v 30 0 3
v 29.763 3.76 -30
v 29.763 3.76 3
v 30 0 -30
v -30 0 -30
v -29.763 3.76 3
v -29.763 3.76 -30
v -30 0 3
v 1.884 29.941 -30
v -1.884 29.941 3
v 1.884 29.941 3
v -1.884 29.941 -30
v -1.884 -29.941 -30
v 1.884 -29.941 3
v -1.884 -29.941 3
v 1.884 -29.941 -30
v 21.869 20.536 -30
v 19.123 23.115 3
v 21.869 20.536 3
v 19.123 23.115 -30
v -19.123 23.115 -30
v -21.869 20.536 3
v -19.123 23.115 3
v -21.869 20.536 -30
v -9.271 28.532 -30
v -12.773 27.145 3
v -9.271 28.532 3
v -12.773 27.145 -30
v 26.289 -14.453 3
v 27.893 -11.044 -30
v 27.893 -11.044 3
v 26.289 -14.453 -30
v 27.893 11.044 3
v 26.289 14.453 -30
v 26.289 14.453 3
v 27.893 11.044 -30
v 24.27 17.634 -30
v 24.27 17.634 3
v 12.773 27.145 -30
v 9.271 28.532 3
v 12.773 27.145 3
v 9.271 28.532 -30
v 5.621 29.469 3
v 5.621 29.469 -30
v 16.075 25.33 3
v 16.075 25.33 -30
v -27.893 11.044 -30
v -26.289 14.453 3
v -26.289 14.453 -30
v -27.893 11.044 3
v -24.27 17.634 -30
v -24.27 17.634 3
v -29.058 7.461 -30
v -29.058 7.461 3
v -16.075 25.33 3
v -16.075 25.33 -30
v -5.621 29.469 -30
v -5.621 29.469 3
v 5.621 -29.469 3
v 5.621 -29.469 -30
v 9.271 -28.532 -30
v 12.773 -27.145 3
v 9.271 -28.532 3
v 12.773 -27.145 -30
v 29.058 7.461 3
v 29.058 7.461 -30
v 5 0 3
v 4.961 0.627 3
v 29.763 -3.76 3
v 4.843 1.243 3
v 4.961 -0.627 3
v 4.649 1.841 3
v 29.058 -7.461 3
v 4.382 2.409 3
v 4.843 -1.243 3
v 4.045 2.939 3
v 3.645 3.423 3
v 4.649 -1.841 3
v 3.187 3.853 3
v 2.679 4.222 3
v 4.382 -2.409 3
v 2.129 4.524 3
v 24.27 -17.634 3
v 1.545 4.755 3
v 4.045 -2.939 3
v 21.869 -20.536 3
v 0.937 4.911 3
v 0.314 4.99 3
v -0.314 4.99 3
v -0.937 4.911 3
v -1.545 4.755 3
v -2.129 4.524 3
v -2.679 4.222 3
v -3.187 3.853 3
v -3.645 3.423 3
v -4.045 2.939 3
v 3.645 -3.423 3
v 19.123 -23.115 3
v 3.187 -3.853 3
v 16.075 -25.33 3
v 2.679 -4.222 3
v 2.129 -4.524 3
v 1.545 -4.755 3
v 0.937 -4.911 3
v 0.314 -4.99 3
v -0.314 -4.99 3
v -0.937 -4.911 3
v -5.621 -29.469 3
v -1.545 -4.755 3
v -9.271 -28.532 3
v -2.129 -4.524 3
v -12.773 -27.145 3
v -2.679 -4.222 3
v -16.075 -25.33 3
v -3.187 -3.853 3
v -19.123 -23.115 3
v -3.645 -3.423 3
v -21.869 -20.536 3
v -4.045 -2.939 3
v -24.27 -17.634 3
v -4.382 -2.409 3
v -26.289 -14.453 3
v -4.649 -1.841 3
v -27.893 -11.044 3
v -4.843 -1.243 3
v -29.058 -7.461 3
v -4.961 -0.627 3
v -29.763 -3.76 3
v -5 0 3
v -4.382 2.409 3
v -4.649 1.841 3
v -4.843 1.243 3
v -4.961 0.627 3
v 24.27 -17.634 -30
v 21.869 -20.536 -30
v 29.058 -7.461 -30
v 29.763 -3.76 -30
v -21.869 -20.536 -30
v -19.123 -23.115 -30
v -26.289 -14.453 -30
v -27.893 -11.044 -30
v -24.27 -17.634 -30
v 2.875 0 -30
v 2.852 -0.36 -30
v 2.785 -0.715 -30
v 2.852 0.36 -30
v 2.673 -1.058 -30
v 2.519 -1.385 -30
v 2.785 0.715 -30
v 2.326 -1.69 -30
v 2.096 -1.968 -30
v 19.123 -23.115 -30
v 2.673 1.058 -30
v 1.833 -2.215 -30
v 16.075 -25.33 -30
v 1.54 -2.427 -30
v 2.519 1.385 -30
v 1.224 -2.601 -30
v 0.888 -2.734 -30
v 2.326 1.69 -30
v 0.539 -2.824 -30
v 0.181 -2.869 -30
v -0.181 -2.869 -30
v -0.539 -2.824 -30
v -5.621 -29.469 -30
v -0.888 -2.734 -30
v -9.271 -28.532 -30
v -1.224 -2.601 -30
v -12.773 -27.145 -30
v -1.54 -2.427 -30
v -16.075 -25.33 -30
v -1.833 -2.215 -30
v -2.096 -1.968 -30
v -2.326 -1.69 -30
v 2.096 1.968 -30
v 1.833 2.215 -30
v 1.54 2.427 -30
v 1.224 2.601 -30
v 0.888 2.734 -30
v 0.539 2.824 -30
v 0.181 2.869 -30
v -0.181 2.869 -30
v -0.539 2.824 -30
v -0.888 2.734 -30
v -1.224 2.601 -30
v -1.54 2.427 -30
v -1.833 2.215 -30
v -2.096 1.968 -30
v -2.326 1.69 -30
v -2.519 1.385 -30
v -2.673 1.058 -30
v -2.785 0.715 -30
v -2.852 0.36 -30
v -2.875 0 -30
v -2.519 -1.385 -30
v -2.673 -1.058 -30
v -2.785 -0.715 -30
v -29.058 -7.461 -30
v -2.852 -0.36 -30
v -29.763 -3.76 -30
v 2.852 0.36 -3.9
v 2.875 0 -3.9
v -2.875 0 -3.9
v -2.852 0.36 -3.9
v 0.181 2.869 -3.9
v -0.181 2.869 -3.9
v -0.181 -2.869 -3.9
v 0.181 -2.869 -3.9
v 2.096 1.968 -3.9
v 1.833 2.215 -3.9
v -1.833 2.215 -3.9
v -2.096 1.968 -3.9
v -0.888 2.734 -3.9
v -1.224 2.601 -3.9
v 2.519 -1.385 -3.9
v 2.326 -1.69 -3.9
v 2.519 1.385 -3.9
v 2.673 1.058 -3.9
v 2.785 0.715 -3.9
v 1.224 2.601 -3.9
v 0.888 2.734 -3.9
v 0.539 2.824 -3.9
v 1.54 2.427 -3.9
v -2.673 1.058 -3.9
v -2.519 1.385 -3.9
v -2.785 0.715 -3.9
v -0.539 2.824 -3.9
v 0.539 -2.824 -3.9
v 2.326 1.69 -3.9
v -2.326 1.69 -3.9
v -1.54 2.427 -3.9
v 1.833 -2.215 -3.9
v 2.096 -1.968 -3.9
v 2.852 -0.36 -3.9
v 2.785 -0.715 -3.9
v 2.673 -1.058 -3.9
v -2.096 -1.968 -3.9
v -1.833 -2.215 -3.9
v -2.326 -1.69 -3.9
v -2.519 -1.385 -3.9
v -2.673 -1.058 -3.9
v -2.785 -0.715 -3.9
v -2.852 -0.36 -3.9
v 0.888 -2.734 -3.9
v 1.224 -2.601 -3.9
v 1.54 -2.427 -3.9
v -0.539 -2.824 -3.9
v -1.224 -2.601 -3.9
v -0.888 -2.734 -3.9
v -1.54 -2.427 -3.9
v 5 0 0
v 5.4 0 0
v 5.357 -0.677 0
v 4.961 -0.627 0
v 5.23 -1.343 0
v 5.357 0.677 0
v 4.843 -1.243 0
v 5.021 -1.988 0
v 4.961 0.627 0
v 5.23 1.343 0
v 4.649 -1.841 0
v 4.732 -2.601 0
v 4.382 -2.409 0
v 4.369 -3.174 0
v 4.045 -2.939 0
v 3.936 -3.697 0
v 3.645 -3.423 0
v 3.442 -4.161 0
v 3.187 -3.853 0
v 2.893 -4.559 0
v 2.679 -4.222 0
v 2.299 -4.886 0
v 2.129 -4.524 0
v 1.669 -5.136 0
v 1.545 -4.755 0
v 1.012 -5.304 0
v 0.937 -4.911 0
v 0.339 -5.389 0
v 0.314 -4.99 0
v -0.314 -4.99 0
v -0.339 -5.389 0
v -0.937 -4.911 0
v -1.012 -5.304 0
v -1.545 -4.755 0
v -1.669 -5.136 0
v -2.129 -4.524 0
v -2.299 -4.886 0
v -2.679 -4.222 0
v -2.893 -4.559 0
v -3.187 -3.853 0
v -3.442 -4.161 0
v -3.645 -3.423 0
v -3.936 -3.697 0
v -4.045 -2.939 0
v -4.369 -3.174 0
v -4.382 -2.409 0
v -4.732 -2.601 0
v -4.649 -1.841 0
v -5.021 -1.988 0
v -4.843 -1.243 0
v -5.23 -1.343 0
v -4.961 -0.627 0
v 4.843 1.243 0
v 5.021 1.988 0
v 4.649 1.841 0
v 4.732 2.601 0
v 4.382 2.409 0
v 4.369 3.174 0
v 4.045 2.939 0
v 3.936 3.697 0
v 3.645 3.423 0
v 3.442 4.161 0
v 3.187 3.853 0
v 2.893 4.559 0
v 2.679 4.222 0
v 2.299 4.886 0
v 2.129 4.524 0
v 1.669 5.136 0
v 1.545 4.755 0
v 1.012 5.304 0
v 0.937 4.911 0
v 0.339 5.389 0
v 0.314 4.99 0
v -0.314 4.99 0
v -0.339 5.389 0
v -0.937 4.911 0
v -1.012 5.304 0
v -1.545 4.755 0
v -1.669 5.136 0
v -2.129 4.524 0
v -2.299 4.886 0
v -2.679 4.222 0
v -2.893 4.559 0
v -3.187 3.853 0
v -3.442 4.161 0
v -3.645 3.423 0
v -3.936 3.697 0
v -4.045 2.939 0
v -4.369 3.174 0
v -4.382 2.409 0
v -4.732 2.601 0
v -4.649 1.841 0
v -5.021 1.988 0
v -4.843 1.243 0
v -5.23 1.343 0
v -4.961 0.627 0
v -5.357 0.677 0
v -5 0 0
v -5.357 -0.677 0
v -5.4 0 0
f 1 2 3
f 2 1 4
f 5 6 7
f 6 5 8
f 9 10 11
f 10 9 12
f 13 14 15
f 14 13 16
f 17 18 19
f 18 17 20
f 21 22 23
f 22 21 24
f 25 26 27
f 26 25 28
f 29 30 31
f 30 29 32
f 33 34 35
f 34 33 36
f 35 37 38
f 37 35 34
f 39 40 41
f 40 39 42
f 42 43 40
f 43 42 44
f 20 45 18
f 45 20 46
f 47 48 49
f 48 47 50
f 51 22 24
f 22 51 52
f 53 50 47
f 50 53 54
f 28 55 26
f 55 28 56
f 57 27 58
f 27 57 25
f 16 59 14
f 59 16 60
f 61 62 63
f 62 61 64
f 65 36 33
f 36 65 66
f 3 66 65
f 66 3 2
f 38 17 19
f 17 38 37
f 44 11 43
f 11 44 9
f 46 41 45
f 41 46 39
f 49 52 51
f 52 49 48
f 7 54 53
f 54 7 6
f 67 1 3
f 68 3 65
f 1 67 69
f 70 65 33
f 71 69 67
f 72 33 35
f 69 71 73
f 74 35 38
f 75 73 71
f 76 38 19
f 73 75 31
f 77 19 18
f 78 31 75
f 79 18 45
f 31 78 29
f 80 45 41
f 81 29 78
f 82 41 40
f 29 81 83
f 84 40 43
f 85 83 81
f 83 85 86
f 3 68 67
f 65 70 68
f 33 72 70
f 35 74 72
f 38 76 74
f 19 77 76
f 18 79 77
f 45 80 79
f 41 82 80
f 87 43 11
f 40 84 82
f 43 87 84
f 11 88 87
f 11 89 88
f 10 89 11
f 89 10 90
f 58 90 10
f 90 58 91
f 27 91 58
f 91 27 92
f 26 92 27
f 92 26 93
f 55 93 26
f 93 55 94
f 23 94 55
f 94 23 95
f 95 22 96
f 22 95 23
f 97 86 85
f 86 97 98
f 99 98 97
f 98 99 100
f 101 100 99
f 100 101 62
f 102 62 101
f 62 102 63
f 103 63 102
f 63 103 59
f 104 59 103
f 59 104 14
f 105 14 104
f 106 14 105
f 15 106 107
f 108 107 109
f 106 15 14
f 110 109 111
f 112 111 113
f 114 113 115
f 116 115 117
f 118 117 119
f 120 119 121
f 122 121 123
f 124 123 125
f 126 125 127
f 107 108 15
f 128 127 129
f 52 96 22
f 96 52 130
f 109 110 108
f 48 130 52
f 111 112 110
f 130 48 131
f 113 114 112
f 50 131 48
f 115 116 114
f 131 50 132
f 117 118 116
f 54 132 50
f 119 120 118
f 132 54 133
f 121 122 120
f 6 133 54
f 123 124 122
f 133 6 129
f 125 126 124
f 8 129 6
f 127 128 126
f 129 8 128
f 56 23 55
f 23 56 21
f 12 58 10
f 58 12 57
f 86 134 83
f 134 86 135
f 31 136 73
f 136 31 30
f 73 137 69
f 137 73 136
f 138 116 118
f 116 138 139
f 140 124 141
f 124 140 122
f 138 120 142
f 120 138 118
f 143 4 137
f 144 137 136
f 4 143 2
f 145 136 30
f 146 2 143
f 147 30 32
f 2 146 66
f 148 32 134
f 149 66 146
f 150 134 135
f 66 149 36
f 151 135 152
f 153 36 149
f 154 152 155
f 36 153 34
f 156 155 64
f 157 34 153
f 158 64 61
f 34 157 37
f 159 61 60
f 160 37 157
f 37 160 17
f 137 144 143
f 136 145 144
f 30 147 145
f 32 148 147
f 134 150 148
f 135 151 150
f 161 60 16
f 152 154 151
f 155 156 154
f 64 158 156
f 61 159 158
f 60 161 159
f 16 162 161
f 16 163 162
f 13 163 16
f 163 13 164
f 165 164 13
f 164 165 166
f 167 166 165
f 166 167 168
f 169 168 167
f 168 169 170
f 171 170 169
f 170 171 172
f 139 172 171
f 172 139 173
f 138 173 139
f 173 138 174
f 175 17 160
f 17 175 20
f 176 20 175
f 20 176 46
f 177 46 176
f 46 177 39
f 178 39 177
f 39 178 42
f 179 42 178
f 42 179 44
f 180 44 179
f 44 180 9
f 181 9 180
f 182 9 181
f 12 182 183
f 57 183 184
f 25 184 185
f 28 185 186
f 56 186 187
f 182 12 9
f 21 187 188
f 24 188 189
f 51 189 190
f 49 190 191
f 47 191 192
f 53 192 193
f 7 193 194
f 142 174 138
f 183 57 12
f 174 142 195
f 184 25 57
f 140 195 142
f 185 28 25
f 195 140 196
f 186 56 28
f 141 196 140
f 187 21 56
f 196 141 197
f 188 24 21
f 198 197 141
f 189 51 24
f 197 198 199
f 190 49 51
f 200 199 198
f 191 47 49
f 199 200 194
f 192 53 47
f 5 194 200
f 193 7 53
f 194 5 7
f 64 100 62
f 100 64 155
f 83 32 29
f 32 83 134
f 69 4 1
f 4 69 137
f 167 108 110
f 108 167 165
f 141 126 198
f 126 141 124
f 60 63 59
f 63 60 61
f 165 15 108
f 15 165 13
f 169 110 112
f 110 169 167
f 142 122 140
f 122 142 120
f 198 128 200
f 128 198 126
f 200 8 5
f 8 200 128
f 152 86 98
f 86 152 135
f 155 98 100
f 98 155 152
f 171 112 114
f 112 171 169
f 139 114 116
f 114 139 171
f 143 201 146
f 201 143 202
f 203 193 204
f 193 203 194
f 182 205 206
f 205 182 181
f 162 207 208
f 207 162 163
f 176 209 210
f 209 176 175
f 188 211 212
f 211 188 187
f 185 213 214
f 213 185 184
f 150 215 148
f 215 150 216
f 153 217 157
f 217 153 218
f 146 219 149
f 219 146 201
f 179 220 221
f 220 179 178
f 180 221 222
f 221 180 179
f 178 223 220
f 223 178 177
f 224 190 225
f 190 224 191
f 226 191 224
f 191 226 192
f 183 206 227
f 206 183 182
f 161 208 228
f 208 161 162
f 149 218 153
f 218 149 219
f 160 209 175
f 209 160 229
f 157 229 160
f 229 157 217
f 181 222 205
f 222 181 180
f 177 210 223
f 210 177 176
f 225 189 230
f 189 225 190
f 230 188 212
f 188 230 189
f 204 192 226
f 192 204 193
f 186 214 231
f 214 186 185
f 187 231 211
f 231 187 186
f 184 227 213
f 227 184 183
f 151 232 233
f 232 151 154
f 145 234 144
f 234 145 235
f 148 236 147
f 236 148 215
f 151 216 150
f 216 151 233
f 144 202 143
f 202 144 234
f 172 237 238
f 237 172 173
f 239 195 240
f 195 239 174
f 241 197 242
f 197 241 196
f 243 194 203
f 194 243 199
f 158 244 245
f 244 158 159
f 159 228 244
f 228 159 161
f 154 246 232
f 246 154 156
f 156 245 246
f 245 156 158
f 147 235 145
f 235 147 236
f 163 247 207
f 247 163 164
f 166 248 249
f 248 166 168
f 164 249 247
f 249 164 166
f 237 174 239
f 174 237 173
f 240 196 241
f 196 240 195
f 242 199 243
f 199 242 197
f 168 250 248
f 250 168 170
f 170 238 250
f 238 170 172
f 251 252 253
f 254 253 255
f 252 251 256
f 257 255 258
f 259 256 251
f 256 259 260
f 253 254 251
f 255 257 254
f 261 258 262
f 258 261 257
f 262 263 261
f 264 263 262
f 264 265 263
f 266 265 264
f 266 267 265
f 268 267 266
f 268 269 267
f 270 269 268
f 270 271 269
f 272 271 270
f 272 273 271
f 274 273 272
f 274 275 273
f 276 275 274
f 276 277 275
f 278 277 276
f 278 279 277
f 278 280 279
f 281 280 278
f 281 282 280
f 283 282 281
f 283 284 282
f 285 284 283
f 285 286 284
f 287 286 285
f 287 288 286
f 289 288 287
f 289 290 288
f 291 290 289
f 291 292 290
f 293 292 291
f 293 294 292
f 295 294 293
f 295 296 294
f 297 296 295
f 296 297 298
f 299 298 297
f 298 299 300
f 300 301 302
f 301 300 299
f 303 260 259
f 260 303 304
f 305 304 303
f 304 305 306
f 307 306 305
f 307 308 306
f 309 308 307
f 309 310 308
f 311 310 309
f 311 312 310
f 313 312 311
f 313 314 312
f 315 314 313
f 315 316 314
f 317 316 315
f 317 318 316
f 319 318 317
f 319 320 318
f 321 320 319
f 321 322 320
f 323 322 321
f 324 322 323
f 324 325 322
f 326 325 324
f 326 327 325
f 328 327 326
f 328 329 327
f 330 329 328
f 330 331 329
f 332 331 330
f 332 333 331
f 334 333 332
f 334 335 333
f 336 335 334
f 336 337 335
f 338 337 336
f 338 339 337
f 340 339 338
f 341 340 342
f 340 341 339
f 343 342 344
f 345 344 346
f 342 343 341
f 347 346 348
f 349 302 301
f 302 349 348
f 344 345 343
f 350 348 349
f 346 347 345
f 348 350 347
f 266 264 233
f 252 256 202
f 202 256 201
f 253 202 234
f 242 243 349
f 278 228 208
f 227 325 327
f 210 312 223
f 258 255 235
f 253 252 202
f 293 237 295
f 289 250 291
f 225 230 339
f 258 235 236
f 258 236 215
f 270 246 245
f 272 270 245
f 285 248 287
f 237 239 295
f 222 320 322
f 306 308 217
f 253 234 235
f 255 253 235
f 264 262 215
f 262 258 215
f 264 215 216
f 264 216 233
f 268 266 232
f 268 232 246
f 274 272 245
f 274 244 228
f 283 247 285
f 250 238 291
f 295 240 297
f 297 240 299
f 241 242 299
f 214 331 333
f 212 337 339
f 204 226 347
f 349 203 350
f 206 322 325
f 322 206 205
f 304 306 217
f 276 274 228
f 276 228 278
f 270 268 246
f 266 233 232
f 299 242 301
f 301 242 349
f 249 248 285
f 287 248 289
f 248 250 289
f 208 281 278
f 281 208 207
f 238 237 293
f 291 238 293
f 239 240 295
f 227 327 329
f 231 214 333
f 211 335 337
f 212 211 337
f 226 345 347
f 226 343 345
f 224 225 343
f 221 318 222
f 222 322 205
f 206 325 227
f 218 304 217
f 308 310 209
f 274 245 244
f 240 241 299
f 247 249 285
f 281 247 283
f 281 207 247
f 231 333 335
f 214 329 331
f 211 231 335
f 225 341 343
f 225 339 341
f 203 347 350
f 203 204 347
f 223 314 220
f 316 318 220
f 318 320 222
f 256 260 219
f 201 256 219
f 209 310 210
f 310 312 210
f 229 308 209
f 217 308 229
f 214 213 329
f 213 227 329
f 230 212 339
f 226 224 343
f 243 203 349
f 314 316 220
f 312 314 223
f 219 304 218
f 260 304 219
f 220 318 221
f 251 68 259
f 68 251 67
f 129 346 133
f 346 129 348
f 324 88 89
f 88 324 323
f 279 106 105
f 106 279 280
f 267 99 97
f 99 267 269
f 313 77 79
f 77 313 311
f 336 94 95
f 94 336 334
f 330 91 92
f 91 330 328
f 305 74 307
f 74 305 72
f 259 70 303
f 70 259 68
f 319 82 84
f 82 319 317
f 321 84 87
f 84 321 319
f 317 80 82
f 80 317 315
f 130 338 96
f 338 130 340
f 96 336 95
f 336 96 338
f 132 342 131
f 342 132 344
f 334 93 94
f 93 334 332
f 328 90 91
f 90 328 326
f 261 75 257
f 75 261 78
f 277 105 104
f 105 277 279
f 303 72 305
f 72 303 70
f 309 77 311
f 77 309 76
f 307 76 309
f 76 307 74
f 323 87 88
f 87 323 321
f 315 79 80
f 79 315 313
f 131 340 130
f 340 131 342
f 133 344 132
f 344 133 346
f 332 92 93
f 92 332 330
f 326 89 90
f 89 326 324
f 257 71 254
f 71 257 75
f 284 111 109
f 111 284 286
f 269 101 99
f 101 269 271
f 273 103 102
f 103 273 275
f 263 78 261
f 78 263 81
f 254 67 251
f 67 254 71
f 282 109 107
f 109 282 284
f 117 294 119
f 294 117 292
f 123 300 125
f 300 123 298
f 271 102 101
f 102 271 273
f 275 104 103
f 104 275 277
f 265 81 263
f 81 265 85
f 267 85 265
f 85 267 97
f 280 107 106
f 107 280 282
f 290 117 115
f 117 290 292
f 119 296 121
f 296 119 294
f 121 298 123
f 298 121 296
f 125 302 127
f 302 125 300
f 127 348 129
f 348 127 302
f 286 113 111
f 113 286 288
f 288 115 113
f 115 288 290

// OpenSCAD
$fn = 50;

difference() {
	union() {
		translate(v = [0, 0, -30.0]) {
			cylinder(h = 33, r = 30.0);
		}
		#translate(v = [0, 0, -33.0]) {
			cylinder(h = 33, r = 2.875);
		}
	}
	union() {
		translate(v = [0, 0, 0]) {
			rotate(a = [0, 0, 0]) {
				difference() {
					union() {
						translate(v = [0, 0, -33.0]) {
							cylinder(h = 33, r = 2.6);
						}
						translate(v = [0, 0, -3.9]) {
							cylinder(h = 3.9, r1 = 2.875, r2 = 5.4);
						}
						translate(v = [0, 0, -33.0]) {
							cylinder(h = 33, r = 2.875);
						}
						translate(v = [0, 0, -33.0]) {
							cylinder(h = 33, r = 2.6);
						}
					}
					union();
				}
			}
		}
		#cylinder(h = 3, r = 5.0);
	}
}
